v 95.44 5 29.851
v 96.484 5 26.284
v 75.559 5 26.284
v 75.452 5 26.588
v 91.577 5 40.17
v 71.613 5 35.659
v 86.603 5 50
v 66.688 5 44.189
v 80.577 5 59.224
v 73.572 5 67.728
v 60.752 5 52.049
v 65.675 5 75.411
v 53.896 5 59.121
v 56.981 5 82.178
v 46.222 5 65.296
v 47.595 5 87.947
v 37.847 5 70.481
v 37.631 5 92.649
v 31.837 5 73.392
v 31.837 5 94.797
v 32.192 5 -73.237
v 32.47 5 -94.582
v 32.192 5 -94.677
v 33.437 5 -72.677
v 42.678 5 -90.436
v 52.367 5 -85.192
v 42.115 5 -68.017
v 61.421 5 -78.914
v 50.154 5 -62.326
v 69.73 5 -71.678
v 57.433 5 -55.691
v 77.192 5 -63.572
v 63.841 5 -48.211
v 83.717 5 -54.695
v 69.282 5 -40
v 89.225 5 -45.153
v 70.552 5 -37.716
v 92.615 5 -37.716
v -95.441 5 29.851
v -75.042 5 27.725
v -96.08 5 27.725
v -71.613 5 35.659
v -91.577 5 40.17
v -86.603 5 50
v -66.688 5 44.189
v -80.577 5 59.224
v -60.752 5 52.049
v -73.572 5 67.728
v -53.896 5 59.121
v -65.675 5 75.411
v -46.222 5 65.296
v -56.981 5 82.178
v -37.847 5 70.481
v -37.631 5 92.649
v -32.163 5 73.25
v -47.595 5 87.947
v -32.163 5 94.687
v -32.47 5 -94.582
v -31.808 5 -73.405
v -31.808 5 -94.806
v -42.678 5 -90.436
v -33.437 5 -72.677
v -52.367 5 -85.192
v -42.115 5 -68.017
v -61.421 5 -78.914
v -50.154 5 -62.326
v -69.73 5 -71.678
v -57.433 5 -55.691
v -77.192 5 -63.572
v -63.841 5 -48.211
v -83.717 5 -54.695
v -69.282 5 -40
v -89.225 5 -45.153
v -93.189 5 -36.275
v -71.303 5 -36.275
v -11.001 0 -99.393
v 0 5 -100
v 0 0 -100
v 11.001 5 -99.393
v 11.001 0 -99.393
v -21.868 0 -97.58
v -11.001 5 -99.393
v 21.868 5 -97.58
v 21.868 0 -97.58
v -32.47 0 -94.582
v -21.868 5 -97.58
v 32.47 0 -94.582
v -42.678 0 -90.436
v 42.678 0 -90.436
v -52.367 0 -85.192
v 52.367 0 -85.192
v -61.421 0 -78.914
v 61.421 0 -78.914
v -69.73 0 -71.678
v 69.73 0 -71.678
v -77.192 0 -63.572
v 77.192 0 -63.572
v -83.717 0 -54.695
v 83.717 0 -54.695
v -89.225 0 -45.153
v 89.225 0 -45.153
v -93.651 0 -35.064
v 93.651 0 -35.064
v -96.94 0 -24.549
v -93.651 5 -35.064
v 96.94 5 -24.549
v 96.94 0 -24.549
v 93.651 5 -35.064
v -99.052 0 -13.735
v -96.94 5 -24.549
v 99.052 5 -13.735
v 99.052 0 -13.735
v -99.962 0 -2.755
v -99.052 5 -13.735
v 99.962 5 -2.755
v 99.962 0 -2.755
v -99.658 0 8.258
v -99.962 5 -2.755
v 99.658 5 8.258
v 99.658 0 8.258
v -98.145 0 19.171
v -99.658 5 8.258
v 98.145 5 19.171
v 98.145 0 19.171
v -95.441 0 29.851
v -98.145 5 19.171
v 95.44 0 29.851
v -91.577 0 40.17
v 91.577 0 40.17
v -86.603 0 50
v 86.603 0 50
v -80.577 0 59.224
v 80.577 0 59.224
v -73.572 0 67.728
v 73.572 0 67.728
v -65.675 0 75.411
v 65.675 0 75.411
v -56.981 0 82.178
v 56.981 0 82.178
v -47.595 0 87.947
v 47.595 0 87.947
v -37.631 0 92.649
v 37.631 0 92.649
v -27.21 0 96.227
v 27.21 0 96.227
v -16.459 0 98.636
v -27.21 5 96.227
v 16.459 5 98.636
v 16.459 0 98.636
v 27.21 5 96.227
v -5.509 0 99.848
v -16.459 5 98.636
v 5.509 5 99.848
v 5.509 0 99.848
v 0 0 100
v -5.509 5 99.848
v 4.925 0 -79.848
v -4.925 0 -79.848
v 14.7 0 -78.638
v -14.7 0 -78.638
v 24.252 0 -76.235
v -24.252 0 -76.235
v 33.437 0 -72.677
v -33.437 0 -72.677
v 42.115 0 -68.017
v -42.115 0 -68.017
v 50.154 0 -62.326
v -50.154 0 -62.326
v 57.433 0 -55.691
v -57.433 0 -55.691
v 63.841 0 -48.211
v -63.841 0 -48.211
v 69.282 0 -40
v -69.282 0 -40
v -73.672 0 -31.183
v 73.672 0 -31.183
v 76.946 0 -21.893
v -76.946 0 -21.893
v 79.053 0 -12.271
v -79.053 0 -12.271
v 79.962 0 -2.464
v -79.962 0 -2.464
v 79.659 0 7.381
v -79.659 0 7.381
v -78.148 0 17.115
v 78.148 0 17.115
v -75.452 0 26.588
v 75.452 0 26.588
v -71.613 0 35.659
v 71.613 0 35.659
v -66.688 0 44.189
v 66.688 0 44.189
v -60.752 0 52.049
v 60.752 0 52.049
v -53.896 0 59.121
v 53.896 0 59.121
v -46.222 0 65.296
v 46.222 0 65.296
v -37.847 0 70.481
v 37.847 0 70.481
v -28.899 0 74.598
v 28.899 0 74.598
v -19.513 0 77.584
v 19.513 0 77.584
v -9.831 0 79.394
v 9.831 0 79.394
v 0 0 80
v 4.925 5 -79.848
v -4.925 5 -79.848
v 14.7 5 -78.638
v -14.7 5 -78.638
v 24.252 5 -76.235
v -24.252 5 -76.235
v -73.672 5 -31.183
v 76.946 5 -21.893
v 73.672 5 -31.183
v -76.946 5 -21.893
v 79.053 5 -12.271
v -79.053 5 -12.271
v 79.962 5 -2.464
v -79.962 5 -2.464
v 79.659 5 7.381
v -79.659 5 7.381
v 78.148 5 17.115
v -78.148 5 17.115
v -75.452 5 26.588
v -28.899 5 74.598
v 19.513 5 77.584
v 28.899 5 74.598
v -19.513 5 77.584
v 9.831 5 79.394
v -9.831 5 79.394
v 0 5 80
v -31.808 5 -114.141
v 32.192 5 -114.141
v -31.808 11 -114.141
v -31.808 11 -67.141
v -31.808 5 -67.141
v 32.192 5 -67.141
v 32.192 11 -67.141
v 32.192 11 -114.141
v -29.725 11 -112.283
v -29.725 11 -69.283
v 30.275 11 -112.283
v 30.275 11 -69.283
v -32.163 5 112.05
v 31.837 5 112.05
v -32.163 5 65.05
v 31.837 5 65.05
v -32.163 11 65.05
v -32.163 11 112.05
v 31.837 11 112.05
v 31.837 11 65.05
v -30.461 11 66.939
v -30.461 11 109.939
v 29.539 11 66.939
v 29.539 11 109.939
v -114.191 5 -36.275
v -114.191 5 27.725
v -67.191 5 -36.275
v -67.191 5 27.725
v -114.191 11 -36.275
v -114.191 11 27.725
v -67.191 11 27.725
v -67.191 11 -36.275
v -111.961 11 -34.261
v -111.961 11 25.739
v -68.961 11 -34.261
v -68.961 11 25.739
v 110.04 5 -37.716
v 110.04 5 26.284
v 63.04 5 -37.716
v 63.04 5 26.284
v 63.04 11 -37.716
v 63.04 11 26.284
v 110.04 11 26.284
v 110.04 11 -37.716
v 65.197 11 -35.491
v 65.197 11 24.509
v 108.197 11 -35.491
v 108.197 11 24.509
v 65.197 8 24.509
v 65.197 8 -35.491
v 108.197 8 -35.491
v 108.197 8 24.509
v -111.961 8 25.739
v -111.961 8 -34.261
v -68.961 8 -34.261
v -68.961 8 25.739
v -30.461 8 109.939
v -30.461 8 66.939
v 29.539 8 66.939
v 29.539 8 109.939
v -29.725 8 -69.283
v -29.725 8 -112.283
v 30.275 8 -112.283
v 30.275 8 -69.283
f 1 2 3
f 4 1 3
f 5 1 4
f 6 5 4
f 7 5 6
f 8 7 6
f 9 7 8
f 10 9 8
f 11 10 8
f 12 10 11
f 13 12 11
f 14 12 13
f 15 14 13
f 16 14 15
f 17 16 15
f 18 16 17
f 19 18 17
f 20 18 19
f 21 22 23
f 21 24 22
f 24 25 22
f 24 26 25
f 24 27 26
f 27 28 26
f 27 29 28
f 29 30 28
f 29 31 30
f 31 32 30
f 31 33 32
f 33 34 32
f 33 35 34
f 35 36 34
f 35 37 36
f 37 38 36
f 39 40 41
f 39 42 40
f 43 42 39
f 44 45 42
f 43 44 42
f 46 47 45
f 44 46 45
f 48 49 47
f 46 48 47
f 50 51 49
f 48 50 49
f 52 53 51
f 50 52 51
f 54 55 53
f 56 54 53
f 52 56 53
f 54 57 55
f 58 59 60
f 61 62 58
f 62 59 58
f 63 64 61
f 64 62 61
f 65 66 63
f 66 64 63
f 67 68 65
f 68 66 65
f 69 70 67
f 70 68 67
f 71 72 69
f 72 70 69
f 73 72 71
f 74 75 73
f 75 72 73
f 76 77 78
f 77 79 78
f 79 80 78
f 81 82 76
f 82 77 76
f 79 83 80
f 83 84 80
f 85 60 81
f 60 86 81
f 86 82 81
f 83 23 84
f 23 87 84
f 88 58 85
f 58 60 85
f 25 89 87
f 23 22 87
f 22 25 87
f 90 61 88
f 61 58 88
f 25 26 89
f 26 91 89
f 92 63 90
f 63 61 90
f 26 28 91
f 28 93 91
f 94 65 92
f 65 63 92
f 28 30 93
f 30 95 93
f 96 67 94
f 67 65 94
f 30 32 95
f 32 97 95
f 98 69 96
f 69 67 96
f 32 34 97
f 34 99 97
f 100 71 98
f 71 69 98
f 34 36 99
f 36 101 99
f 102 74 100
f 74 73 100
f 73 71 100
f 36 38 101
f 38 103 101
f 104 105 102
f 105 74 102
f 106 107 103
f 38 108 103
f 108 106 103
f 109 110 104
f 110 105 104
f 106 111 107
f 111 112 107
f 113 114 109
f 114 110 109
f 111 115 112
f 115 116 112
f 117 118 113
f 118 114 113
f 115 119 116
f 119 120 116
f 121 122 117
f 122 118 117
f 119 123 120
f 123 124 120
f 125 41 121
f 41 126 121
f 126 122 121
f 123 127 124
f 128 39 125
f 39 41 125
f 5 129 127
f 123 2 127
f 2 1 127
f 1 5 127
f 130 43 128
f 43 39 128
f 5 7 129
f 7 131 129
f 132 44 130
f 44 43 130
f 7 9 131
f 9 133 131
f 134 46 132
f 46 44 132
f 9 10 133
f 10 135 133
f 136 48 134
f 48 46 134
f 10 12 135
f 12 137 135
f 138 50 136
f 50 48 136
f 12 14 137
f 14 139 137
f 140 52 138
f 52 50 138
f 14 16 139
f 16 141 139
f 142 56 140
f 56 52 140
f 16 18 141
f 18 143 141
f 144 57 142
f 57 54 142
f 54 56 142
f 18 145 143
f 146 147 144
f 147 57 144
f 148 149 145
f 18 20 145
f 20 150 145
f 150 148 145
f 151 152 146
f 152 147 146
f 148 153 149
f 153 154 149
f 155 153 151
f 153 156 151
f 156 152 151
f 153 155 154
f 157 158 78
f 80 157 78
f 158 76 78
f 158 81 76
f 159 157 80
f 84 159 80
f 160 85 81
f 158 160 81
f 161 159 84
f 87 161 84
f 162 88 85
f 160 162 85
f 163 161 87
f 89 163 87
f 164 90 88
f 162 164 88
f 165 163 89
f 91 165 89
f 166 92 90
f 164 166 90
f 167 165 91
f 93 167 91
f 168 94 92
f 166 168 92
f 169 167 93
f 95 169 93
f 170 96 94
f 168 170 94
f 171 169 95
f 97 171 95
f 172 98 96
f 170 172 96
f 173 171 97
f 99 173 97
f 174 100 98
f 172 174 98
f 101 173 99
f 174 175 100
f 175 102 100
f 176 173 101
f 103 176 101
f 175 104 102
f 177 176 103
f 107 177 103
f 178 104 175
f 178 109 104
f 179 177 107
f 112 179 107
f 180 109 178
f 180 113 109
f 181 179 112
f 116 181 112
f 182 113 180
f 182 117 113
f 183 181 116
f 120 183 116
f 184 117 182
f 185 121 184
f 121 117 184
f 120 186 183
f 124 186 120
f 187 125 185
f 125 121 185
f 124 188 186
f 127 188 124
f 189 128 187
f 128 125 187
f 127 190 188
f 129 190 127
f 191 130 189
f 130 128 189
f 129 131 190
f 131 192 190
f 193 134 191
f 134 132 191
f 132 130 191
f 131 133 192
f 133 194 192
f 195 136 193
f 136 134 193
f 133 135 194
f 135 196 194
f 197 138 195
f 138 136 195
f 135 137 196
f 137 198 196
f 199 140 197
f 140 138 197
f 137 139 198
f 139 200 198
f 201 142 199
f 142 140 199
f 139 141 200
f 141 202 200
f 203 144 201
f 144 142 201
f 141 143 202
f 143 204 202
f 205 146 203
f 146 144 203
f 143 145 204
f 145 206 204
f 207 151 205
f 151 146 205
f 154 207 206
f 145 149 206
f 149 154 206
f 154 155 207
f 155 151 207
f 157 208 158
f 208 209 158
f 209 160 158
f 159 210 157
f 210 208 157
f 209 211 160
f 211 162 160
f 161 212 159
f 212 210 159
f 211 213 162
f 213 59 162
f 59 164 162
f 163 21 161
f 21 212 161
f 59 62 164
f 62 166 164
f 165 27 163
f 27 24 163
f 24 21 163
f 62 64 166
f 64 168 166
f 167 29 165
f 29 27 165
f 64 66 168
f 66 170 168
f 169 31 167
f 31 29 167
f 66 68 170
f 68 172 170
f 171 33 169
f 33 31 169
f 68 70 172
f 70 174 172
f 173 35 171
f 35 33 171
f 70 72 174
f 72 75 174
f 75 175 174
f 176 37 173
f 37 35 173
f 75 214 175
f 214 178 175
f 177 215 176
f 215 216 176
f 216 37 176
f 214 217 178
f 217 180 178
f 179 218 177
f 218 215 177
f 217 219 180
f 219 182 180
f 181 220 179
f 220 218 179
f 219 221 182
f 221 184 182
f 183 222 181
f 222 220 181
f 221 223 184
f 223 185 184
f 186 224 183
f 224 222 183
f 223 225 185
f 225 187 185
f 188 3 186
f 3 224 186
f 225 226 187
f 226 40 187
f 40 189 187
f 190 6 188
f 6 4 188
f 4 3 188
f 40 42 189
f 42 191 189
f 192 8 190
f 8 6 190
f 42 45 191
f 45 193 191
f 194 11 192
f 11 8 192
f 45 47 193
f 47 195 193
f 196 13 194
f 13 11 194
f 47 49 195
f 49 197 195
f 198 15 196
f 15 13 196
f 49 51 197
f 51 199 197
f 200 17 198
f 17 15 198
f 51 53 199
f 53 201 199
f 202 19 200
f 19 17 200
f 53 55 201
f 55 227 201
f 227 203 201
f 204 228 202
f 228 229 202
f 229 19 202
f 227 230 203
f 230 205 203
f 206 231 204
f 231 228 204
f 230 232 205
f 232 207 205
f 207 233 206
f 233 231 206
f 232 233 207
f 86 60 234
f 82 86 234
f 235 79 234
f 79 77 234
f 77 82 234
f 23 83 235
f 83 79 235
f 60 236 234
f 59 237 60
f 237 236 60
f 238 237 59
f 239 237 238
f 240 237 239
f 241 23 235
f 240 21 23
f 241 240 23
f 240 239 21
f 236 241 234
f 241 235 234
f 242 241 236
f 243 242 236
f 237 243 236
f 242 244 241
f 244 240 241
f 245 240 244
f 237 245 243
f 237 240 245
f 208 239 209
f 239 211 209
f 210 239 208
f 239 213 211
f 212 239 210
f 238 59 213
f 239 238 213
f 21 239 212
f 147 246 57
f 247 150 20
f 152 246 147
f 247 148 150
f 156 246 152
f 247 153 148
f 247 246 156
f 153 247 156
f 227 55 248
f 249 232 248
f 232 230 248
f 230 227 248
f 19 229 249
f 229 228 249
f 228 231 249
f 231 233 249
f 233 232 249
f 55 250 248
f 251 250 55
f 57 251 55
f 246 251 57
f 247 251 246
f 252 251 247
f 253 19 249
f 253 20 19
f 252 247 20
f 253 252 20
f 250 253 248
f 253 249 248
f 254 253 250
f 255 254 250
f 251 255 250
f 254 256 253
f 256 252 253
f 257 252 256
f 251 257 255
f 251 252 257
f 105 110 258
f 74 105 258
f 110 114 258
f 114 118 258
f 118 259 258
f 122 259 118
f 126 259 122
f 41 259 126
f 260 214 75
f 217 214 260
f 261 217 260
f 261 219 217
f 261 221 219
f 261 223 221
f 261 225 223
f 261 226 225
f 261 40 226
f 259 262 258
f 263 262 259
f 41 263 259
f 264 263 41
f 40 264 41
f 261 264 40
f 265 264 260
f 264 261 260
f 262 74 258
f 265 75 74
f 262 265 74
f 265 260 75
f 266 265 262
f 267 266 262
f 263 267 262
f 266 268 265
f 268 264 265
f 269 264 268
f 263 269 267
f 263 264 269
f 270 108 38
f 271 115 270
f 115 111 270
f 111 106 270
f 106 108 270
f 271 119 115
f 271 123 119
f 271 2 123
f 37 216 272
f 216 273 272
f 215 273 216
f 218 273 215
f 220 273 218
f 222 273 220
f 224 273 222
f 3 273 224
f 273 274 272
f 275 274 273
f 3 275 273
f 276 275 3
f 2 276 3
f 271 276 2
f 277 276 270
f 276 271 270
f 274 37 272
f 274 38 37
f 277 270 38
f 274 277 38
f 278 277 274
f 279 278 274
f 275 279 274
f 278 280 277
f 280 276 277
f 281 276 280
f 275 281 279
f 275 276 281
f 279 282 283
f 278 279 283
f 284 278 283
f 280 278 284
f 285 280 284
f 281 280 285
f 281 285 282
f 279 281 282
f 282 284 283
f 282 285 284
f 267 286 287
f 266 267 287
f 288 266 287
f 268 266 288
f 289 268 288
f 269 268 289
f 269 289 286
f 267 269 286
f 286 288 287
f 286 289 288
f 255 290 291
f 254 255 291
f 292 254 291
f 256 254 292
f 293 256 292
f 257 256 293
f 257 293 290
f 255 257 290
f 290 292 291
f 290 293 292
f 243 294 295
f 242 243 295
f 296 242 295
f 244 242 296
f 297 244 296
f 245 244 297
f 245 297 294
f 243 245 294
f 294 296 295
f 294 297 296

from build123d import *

# Parameters (mm, degrees)
SKETCH_1_R          = 100
EXTRUDE_2_DEPTH     = 5
SKETCH_3_R          = 80
CUT_EXTRUDE_1_DEPTH = 5
SKETCH_4_W          = 64
SKETCH_4_H          = 47
SKETCH_4_W_2        = 47
SKETCH_4_H_2        = 64
EXTRUDE_4_DEPTH     = 6
SKETCH_7_W          = 60
SKETCH_7_H          = 43
SKETCH_7_W_2        = 43
SKETCH_7_H_2        = 60
CUT_EXTRUDE_2_DEPTH = 3


with BuildPart() as part:
    # 草图1 → 凸台-拉伸2 (new body)
    with BuildSketch(Plane(origin=(0, 0, 0), x_dir=(1, 0, 0), z_dir=(0, 1, 0))):
        with Locations(Location((0, 0, 0), (0, 0, 270))):
            Circle(SKETCH_1_R)
    extrude(amount=EXTRUDE_2_DEPTH)

    # 草图3 → 切除-拉伸1 (cut)
    with BuildSketch(Plane(origin=(0, 5, 0), x_dir=(1, 0, 0), z_dir=(0, 1, 0))):
        with Locations(Location((0, 0, 0), (0, 0, 270))):
            Circle(SKETCH_3_R)
    extrude(amount=-CUT_EXTRUDE_1_DEPTH, mode=Mode.SUBTRACT)

    # 草图4 → 凸台-拉伸4 (add)
    with BuildSketch(Plane(origin=(0, 5, 0), x_dir=(1, 0, 0), z_dir=(0, 1, 0))):
        with Locations((-0.162859843, -88.550006354)):
            Rectangle(SKETCH_4_W, SKETCH_4_H)
        with Locations((0.19173376, 90.641323137)):
            Rectangle(SKETCH_4_W, SKETCH_4_H)
        with Locations((-90.690666059, 4.275289792)):
            Rectangle(SKETCH_4_W_2, SKETCH_4_H_2)
        with Locations((86.540113404, 5.715544521)):
            Rectangle(SKETCH_4_W_2, SKETCH_4_H_2)
    extrude(amount=EXTRUDE_4_DEPTH)

    # 草图7 → 切除-拉伸2 (cut)
    with BuildSketch(Plane(origin=(0, 11, 0), x_dir=(1, 0, 0), z_dir=(0, 1, 0))):
        with Locations((-0.461103179, -88.439082163)):
            Rectangle(SKETCH_7_W, SKETCH_7_H)
        with Locations((0.274660962, 90.782811556)):
            Rectangle(SKETCH_7_W, SKETCH_7_H)
        with Locations((86.697399142, 5.490846131)):
            Rectangle(SKETCH_7_W_2, SKETCH_7_H_2)
        with Locations((-90.460833893, 4.260878525)):
            Rectangle(SKETCH_7_W_2, SKETCH_7_H_2)
    extrude(amount=-CUT_EXTRUDE_2_DEPTH, mode=Mode.SUBTRACT)


solid = part.part
